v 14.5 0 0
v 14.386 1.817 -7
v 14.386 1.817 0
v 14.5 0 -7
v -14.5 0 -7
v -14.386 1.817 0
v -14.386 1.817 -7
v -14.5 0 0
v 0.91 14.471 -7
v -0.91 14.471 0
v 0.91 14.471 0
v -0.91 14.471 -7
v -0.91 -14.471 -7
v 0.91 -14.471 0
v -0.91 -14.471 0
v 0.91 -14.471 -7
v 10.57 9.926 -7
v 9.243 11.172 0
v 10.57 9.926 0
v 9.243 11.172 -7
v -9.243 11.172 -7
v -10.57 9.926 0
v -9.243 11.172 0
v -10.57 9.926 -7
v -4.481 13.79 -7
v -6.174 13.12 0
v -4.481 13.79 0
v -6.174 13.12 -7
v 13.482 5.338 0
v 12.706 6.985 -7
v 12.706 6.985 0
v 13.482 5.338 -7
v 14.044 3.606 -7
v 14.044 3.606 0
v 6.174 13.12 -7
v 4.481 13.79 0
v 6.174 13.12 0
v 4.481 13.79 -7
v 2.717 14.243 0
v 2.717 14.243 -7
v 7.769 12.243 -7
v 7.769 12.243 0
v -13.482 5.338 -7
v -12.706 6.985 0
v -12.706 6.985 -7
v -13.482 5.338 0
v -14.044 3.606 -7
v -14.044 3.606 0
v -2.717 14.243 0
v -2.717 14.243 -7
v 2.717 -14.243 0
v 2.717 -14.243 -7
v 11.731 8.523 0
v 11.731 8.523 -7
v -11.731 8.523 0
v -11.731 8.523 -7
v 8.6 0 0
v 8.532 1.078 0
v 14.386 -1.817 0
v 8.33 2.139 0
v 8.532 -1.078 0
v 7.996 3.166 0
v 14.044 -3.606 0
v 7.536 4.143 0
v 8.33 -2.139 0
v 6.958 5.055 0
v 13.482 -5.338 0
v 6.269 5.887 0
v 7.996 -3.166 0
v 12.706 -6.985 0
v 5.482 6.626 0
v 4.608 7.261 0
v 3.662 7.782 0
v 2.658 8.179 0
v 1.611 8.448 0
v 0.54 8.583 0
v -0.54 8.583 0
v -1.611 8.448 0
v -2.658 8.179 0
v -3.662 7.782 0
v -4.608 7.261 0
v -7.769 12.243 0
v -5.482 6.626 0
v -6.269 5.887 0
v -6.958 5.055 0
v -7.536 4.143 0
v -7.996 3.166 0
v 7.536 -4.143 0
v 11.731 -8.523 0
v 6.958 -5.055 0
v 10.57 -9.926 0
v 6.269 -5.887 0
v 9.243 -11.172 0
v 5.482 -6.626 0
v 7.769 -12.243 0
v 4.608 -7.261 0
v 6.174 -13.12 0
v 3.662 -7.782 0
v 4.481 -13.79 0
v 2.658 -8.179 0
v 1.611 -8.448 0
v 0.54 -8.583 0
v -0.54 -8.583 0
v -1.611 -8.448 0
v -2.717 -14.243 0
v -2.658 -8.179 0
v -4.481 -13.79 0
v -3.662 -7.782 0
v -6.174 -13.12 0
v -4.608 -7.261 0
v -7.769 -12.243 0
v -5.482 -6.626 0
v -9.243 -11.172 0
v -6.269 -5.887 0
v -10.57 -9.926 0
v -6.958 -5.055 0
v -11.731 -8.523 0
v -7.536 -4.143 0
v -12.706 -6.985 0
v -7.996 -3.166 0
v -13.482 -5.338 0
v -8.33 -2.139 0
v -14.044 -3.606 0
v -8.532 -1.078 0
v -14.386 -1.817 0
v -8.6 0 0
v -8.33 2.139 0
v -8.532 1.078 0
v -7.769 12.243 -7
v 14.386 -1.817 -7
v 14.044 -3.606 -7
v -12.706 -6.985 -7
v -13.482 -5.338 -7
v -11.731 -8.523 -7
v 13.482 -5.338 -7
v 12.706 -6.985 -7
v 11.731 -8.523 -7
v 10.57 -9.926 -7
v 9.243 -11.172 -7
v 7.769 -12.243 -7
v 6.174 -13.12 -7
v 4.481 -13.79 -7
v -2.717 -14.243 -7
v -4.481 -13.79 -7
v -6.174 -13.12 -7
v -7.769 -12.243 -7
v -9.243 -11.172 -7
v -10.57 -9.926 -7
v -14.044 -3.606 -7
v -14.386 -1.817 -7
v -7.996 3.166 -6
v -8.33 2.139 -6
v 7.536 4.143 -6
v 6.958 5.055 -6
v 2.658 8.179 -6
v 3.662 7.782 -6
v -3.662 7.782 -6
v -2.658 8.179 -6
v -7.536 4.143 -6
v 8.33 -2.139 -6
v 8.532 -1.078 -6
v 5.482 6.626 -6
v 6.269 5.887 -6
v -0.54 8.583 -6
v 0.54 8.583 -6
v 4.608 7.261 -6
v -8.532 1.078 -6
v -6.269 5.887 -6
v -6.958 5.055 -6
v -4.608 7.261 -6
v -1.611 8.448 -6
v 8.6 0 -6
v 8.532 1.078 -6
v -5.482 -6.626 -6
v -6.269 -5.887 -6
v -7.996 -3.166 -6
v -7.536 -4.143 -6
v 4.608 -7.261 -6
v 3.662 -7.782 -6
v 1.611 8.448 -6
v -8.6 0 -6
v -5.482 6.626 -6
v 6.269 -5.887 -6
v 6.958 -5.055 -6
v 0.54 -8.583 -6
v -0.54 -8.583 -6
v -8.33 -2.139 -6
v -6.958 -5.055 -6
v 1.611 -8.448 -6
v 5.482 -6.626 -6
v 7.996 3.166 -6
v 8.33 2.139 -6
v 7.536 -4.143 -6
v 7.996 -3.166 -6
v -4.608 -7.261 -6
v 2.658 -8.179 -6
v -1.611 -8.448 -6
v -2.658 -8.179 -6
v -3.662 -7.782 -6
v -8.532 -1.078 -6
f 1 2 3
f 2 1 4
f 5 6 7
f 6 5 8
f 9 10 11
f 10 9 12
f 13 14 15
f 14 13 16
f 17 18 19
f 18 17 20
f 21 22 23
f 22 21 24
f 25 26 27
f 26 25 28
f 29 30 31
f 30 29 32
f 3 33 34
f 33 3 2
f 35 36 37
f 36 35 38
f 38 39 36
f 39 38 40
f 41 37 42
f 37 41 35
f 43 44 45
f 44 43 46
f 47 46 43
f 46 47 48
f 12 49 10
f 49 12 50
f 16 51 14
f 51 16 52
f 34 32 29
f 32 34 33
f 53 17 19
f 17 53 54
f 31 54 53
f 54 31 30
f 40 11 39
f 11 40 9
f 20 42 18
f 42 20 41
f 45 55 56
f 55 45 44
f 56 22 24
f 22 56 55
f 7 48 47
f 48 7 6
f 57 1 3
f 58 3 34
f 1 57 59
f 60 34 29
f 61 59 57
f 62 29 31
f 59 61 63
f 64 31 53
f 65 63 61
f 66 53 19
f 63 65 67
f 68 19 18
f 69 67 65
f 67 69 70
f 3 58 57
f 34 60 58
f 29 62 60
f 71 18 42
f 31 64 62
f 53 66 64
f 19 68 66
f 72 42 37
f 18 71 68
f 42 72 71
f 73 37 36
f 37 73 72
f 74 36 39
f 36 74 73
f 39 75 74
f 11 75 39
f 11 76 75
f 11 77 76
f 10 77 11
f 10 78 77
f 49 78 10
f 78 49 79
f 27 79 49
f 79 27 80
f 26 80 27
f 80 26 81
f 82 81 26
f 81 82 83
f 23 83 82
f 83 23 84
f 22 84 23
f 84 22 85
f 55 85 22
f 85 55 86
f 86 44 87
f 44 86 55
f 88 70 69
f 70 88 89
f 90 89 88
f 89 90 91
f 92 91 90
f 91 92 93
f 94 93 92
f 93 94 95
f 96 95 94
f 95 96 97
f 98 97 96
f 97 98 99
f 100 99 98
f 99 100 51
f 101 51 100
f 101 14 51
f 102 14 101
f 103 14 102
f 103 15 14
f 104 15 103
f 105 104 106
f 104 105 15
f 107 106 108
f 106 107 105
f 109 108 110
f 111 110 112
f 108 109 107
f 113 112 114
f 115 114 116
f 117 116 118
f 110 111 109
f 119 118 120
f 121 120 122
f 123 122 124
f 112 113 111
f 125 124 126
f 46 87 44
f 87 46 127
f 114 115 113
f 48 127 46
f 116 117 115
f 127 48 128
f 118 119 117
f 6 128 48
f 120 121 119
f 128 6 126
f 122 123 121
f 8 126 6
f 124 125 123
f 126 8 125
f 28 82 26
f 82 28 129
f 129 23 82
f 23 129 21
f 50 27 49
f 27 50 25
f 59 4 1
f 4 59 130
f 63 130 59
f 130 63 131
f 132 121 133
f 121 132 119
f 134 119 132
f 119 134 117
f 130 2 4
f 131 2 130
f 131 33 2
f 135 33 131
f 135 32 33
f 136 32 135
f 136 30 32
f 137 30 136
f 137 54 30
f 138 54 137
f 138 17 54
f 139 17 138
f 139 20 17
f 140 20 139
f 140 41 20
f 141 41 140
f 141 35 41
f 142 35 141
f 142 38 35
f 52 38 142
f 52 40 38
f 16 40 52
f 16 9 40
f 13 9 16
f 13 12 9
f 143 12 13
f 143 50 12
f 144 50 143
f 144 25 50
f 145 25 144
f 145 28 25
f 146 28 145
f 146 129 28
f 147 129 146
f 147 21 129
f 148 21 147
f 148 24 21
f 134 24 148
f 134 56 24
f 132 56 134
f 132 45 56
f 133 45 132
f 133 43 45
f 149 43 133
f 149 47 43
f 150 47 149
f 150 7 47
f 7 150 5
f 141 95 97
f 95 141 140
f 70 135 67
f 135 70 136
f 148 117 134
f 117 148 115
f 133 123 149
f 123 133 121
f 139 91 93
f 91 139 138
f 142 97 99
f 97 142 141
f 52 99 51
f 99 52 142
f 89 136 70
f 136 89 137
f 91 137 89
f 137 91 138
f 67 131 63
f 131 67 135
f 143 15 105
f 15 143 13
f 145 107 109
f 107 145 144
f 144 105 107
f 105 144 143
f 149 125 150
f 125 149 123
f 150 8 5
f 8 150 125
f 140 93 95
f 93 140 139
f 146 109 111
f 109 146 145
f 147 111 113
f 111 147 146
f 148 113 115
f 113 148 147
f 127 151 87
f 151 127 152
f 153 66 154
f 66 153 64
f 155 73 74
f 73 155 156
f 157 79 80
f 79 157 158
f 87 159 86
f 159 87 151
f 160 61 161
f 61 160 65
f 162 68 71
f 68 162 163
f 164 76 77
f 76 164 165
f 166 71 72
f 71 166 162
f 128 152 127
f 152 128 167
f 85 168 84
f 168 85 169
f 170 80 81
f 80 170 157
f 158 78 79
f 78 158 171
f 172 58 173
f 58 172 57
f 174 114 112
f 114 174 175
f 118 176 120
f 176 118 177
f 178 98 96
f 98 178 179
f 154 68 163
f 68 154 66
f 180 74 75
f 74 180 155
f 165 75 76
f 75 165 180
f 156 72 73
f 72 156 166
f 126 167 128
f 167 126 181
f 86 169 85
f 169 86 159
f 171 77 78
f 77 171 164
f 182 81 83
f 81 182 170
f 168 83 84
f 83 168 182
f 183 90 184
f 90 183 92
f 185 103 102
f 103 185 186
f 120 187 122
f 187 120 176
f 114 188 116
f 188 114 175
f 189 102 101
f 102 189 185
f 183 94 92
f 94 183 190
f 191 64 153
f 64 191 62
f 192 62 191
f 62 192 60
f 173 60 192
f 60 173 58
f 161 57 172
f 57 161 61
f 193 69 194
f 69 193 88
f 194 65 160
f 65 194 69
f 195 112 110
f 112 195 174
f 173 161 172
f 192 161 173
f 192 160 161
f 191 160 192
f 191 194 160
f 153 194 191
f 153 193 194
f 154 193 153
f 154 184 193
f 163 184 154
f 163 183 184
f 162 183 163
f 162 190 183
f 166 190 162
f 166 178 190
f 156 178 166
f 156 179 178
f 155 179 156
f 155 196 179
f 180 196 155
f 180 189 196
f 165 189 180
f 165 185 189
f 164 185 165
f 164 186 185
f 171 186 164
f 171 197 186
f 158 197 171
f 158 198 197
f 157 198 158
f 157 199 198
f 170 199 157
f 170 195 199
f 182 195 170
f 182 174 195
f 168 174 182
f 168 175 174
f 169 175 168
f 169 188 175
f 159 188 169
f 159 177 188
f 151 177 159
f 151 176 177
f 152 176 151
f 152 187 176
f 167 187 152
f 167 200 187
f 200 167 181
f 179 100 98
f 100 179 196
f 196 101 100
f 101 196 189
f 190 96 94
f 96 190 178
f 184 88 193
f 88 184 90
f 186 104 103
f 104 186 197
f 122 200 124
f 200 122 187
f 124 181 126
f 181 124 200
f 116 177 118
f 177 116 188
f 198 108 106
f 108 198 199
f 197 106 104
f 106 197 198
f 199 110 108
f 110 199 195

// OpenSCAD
$fn = 50;


difference() {
	union() {
		translate(v = [0, 0, -7.0000000000]) {
			cylinder(h = 7, r = 14.5000000000);
		}
	}
	union() {
		#translate(v = [0, 0, -6.0000000000]) {
			cylinder(h = 6, r = 8.6000000000);
		}
	}
}
